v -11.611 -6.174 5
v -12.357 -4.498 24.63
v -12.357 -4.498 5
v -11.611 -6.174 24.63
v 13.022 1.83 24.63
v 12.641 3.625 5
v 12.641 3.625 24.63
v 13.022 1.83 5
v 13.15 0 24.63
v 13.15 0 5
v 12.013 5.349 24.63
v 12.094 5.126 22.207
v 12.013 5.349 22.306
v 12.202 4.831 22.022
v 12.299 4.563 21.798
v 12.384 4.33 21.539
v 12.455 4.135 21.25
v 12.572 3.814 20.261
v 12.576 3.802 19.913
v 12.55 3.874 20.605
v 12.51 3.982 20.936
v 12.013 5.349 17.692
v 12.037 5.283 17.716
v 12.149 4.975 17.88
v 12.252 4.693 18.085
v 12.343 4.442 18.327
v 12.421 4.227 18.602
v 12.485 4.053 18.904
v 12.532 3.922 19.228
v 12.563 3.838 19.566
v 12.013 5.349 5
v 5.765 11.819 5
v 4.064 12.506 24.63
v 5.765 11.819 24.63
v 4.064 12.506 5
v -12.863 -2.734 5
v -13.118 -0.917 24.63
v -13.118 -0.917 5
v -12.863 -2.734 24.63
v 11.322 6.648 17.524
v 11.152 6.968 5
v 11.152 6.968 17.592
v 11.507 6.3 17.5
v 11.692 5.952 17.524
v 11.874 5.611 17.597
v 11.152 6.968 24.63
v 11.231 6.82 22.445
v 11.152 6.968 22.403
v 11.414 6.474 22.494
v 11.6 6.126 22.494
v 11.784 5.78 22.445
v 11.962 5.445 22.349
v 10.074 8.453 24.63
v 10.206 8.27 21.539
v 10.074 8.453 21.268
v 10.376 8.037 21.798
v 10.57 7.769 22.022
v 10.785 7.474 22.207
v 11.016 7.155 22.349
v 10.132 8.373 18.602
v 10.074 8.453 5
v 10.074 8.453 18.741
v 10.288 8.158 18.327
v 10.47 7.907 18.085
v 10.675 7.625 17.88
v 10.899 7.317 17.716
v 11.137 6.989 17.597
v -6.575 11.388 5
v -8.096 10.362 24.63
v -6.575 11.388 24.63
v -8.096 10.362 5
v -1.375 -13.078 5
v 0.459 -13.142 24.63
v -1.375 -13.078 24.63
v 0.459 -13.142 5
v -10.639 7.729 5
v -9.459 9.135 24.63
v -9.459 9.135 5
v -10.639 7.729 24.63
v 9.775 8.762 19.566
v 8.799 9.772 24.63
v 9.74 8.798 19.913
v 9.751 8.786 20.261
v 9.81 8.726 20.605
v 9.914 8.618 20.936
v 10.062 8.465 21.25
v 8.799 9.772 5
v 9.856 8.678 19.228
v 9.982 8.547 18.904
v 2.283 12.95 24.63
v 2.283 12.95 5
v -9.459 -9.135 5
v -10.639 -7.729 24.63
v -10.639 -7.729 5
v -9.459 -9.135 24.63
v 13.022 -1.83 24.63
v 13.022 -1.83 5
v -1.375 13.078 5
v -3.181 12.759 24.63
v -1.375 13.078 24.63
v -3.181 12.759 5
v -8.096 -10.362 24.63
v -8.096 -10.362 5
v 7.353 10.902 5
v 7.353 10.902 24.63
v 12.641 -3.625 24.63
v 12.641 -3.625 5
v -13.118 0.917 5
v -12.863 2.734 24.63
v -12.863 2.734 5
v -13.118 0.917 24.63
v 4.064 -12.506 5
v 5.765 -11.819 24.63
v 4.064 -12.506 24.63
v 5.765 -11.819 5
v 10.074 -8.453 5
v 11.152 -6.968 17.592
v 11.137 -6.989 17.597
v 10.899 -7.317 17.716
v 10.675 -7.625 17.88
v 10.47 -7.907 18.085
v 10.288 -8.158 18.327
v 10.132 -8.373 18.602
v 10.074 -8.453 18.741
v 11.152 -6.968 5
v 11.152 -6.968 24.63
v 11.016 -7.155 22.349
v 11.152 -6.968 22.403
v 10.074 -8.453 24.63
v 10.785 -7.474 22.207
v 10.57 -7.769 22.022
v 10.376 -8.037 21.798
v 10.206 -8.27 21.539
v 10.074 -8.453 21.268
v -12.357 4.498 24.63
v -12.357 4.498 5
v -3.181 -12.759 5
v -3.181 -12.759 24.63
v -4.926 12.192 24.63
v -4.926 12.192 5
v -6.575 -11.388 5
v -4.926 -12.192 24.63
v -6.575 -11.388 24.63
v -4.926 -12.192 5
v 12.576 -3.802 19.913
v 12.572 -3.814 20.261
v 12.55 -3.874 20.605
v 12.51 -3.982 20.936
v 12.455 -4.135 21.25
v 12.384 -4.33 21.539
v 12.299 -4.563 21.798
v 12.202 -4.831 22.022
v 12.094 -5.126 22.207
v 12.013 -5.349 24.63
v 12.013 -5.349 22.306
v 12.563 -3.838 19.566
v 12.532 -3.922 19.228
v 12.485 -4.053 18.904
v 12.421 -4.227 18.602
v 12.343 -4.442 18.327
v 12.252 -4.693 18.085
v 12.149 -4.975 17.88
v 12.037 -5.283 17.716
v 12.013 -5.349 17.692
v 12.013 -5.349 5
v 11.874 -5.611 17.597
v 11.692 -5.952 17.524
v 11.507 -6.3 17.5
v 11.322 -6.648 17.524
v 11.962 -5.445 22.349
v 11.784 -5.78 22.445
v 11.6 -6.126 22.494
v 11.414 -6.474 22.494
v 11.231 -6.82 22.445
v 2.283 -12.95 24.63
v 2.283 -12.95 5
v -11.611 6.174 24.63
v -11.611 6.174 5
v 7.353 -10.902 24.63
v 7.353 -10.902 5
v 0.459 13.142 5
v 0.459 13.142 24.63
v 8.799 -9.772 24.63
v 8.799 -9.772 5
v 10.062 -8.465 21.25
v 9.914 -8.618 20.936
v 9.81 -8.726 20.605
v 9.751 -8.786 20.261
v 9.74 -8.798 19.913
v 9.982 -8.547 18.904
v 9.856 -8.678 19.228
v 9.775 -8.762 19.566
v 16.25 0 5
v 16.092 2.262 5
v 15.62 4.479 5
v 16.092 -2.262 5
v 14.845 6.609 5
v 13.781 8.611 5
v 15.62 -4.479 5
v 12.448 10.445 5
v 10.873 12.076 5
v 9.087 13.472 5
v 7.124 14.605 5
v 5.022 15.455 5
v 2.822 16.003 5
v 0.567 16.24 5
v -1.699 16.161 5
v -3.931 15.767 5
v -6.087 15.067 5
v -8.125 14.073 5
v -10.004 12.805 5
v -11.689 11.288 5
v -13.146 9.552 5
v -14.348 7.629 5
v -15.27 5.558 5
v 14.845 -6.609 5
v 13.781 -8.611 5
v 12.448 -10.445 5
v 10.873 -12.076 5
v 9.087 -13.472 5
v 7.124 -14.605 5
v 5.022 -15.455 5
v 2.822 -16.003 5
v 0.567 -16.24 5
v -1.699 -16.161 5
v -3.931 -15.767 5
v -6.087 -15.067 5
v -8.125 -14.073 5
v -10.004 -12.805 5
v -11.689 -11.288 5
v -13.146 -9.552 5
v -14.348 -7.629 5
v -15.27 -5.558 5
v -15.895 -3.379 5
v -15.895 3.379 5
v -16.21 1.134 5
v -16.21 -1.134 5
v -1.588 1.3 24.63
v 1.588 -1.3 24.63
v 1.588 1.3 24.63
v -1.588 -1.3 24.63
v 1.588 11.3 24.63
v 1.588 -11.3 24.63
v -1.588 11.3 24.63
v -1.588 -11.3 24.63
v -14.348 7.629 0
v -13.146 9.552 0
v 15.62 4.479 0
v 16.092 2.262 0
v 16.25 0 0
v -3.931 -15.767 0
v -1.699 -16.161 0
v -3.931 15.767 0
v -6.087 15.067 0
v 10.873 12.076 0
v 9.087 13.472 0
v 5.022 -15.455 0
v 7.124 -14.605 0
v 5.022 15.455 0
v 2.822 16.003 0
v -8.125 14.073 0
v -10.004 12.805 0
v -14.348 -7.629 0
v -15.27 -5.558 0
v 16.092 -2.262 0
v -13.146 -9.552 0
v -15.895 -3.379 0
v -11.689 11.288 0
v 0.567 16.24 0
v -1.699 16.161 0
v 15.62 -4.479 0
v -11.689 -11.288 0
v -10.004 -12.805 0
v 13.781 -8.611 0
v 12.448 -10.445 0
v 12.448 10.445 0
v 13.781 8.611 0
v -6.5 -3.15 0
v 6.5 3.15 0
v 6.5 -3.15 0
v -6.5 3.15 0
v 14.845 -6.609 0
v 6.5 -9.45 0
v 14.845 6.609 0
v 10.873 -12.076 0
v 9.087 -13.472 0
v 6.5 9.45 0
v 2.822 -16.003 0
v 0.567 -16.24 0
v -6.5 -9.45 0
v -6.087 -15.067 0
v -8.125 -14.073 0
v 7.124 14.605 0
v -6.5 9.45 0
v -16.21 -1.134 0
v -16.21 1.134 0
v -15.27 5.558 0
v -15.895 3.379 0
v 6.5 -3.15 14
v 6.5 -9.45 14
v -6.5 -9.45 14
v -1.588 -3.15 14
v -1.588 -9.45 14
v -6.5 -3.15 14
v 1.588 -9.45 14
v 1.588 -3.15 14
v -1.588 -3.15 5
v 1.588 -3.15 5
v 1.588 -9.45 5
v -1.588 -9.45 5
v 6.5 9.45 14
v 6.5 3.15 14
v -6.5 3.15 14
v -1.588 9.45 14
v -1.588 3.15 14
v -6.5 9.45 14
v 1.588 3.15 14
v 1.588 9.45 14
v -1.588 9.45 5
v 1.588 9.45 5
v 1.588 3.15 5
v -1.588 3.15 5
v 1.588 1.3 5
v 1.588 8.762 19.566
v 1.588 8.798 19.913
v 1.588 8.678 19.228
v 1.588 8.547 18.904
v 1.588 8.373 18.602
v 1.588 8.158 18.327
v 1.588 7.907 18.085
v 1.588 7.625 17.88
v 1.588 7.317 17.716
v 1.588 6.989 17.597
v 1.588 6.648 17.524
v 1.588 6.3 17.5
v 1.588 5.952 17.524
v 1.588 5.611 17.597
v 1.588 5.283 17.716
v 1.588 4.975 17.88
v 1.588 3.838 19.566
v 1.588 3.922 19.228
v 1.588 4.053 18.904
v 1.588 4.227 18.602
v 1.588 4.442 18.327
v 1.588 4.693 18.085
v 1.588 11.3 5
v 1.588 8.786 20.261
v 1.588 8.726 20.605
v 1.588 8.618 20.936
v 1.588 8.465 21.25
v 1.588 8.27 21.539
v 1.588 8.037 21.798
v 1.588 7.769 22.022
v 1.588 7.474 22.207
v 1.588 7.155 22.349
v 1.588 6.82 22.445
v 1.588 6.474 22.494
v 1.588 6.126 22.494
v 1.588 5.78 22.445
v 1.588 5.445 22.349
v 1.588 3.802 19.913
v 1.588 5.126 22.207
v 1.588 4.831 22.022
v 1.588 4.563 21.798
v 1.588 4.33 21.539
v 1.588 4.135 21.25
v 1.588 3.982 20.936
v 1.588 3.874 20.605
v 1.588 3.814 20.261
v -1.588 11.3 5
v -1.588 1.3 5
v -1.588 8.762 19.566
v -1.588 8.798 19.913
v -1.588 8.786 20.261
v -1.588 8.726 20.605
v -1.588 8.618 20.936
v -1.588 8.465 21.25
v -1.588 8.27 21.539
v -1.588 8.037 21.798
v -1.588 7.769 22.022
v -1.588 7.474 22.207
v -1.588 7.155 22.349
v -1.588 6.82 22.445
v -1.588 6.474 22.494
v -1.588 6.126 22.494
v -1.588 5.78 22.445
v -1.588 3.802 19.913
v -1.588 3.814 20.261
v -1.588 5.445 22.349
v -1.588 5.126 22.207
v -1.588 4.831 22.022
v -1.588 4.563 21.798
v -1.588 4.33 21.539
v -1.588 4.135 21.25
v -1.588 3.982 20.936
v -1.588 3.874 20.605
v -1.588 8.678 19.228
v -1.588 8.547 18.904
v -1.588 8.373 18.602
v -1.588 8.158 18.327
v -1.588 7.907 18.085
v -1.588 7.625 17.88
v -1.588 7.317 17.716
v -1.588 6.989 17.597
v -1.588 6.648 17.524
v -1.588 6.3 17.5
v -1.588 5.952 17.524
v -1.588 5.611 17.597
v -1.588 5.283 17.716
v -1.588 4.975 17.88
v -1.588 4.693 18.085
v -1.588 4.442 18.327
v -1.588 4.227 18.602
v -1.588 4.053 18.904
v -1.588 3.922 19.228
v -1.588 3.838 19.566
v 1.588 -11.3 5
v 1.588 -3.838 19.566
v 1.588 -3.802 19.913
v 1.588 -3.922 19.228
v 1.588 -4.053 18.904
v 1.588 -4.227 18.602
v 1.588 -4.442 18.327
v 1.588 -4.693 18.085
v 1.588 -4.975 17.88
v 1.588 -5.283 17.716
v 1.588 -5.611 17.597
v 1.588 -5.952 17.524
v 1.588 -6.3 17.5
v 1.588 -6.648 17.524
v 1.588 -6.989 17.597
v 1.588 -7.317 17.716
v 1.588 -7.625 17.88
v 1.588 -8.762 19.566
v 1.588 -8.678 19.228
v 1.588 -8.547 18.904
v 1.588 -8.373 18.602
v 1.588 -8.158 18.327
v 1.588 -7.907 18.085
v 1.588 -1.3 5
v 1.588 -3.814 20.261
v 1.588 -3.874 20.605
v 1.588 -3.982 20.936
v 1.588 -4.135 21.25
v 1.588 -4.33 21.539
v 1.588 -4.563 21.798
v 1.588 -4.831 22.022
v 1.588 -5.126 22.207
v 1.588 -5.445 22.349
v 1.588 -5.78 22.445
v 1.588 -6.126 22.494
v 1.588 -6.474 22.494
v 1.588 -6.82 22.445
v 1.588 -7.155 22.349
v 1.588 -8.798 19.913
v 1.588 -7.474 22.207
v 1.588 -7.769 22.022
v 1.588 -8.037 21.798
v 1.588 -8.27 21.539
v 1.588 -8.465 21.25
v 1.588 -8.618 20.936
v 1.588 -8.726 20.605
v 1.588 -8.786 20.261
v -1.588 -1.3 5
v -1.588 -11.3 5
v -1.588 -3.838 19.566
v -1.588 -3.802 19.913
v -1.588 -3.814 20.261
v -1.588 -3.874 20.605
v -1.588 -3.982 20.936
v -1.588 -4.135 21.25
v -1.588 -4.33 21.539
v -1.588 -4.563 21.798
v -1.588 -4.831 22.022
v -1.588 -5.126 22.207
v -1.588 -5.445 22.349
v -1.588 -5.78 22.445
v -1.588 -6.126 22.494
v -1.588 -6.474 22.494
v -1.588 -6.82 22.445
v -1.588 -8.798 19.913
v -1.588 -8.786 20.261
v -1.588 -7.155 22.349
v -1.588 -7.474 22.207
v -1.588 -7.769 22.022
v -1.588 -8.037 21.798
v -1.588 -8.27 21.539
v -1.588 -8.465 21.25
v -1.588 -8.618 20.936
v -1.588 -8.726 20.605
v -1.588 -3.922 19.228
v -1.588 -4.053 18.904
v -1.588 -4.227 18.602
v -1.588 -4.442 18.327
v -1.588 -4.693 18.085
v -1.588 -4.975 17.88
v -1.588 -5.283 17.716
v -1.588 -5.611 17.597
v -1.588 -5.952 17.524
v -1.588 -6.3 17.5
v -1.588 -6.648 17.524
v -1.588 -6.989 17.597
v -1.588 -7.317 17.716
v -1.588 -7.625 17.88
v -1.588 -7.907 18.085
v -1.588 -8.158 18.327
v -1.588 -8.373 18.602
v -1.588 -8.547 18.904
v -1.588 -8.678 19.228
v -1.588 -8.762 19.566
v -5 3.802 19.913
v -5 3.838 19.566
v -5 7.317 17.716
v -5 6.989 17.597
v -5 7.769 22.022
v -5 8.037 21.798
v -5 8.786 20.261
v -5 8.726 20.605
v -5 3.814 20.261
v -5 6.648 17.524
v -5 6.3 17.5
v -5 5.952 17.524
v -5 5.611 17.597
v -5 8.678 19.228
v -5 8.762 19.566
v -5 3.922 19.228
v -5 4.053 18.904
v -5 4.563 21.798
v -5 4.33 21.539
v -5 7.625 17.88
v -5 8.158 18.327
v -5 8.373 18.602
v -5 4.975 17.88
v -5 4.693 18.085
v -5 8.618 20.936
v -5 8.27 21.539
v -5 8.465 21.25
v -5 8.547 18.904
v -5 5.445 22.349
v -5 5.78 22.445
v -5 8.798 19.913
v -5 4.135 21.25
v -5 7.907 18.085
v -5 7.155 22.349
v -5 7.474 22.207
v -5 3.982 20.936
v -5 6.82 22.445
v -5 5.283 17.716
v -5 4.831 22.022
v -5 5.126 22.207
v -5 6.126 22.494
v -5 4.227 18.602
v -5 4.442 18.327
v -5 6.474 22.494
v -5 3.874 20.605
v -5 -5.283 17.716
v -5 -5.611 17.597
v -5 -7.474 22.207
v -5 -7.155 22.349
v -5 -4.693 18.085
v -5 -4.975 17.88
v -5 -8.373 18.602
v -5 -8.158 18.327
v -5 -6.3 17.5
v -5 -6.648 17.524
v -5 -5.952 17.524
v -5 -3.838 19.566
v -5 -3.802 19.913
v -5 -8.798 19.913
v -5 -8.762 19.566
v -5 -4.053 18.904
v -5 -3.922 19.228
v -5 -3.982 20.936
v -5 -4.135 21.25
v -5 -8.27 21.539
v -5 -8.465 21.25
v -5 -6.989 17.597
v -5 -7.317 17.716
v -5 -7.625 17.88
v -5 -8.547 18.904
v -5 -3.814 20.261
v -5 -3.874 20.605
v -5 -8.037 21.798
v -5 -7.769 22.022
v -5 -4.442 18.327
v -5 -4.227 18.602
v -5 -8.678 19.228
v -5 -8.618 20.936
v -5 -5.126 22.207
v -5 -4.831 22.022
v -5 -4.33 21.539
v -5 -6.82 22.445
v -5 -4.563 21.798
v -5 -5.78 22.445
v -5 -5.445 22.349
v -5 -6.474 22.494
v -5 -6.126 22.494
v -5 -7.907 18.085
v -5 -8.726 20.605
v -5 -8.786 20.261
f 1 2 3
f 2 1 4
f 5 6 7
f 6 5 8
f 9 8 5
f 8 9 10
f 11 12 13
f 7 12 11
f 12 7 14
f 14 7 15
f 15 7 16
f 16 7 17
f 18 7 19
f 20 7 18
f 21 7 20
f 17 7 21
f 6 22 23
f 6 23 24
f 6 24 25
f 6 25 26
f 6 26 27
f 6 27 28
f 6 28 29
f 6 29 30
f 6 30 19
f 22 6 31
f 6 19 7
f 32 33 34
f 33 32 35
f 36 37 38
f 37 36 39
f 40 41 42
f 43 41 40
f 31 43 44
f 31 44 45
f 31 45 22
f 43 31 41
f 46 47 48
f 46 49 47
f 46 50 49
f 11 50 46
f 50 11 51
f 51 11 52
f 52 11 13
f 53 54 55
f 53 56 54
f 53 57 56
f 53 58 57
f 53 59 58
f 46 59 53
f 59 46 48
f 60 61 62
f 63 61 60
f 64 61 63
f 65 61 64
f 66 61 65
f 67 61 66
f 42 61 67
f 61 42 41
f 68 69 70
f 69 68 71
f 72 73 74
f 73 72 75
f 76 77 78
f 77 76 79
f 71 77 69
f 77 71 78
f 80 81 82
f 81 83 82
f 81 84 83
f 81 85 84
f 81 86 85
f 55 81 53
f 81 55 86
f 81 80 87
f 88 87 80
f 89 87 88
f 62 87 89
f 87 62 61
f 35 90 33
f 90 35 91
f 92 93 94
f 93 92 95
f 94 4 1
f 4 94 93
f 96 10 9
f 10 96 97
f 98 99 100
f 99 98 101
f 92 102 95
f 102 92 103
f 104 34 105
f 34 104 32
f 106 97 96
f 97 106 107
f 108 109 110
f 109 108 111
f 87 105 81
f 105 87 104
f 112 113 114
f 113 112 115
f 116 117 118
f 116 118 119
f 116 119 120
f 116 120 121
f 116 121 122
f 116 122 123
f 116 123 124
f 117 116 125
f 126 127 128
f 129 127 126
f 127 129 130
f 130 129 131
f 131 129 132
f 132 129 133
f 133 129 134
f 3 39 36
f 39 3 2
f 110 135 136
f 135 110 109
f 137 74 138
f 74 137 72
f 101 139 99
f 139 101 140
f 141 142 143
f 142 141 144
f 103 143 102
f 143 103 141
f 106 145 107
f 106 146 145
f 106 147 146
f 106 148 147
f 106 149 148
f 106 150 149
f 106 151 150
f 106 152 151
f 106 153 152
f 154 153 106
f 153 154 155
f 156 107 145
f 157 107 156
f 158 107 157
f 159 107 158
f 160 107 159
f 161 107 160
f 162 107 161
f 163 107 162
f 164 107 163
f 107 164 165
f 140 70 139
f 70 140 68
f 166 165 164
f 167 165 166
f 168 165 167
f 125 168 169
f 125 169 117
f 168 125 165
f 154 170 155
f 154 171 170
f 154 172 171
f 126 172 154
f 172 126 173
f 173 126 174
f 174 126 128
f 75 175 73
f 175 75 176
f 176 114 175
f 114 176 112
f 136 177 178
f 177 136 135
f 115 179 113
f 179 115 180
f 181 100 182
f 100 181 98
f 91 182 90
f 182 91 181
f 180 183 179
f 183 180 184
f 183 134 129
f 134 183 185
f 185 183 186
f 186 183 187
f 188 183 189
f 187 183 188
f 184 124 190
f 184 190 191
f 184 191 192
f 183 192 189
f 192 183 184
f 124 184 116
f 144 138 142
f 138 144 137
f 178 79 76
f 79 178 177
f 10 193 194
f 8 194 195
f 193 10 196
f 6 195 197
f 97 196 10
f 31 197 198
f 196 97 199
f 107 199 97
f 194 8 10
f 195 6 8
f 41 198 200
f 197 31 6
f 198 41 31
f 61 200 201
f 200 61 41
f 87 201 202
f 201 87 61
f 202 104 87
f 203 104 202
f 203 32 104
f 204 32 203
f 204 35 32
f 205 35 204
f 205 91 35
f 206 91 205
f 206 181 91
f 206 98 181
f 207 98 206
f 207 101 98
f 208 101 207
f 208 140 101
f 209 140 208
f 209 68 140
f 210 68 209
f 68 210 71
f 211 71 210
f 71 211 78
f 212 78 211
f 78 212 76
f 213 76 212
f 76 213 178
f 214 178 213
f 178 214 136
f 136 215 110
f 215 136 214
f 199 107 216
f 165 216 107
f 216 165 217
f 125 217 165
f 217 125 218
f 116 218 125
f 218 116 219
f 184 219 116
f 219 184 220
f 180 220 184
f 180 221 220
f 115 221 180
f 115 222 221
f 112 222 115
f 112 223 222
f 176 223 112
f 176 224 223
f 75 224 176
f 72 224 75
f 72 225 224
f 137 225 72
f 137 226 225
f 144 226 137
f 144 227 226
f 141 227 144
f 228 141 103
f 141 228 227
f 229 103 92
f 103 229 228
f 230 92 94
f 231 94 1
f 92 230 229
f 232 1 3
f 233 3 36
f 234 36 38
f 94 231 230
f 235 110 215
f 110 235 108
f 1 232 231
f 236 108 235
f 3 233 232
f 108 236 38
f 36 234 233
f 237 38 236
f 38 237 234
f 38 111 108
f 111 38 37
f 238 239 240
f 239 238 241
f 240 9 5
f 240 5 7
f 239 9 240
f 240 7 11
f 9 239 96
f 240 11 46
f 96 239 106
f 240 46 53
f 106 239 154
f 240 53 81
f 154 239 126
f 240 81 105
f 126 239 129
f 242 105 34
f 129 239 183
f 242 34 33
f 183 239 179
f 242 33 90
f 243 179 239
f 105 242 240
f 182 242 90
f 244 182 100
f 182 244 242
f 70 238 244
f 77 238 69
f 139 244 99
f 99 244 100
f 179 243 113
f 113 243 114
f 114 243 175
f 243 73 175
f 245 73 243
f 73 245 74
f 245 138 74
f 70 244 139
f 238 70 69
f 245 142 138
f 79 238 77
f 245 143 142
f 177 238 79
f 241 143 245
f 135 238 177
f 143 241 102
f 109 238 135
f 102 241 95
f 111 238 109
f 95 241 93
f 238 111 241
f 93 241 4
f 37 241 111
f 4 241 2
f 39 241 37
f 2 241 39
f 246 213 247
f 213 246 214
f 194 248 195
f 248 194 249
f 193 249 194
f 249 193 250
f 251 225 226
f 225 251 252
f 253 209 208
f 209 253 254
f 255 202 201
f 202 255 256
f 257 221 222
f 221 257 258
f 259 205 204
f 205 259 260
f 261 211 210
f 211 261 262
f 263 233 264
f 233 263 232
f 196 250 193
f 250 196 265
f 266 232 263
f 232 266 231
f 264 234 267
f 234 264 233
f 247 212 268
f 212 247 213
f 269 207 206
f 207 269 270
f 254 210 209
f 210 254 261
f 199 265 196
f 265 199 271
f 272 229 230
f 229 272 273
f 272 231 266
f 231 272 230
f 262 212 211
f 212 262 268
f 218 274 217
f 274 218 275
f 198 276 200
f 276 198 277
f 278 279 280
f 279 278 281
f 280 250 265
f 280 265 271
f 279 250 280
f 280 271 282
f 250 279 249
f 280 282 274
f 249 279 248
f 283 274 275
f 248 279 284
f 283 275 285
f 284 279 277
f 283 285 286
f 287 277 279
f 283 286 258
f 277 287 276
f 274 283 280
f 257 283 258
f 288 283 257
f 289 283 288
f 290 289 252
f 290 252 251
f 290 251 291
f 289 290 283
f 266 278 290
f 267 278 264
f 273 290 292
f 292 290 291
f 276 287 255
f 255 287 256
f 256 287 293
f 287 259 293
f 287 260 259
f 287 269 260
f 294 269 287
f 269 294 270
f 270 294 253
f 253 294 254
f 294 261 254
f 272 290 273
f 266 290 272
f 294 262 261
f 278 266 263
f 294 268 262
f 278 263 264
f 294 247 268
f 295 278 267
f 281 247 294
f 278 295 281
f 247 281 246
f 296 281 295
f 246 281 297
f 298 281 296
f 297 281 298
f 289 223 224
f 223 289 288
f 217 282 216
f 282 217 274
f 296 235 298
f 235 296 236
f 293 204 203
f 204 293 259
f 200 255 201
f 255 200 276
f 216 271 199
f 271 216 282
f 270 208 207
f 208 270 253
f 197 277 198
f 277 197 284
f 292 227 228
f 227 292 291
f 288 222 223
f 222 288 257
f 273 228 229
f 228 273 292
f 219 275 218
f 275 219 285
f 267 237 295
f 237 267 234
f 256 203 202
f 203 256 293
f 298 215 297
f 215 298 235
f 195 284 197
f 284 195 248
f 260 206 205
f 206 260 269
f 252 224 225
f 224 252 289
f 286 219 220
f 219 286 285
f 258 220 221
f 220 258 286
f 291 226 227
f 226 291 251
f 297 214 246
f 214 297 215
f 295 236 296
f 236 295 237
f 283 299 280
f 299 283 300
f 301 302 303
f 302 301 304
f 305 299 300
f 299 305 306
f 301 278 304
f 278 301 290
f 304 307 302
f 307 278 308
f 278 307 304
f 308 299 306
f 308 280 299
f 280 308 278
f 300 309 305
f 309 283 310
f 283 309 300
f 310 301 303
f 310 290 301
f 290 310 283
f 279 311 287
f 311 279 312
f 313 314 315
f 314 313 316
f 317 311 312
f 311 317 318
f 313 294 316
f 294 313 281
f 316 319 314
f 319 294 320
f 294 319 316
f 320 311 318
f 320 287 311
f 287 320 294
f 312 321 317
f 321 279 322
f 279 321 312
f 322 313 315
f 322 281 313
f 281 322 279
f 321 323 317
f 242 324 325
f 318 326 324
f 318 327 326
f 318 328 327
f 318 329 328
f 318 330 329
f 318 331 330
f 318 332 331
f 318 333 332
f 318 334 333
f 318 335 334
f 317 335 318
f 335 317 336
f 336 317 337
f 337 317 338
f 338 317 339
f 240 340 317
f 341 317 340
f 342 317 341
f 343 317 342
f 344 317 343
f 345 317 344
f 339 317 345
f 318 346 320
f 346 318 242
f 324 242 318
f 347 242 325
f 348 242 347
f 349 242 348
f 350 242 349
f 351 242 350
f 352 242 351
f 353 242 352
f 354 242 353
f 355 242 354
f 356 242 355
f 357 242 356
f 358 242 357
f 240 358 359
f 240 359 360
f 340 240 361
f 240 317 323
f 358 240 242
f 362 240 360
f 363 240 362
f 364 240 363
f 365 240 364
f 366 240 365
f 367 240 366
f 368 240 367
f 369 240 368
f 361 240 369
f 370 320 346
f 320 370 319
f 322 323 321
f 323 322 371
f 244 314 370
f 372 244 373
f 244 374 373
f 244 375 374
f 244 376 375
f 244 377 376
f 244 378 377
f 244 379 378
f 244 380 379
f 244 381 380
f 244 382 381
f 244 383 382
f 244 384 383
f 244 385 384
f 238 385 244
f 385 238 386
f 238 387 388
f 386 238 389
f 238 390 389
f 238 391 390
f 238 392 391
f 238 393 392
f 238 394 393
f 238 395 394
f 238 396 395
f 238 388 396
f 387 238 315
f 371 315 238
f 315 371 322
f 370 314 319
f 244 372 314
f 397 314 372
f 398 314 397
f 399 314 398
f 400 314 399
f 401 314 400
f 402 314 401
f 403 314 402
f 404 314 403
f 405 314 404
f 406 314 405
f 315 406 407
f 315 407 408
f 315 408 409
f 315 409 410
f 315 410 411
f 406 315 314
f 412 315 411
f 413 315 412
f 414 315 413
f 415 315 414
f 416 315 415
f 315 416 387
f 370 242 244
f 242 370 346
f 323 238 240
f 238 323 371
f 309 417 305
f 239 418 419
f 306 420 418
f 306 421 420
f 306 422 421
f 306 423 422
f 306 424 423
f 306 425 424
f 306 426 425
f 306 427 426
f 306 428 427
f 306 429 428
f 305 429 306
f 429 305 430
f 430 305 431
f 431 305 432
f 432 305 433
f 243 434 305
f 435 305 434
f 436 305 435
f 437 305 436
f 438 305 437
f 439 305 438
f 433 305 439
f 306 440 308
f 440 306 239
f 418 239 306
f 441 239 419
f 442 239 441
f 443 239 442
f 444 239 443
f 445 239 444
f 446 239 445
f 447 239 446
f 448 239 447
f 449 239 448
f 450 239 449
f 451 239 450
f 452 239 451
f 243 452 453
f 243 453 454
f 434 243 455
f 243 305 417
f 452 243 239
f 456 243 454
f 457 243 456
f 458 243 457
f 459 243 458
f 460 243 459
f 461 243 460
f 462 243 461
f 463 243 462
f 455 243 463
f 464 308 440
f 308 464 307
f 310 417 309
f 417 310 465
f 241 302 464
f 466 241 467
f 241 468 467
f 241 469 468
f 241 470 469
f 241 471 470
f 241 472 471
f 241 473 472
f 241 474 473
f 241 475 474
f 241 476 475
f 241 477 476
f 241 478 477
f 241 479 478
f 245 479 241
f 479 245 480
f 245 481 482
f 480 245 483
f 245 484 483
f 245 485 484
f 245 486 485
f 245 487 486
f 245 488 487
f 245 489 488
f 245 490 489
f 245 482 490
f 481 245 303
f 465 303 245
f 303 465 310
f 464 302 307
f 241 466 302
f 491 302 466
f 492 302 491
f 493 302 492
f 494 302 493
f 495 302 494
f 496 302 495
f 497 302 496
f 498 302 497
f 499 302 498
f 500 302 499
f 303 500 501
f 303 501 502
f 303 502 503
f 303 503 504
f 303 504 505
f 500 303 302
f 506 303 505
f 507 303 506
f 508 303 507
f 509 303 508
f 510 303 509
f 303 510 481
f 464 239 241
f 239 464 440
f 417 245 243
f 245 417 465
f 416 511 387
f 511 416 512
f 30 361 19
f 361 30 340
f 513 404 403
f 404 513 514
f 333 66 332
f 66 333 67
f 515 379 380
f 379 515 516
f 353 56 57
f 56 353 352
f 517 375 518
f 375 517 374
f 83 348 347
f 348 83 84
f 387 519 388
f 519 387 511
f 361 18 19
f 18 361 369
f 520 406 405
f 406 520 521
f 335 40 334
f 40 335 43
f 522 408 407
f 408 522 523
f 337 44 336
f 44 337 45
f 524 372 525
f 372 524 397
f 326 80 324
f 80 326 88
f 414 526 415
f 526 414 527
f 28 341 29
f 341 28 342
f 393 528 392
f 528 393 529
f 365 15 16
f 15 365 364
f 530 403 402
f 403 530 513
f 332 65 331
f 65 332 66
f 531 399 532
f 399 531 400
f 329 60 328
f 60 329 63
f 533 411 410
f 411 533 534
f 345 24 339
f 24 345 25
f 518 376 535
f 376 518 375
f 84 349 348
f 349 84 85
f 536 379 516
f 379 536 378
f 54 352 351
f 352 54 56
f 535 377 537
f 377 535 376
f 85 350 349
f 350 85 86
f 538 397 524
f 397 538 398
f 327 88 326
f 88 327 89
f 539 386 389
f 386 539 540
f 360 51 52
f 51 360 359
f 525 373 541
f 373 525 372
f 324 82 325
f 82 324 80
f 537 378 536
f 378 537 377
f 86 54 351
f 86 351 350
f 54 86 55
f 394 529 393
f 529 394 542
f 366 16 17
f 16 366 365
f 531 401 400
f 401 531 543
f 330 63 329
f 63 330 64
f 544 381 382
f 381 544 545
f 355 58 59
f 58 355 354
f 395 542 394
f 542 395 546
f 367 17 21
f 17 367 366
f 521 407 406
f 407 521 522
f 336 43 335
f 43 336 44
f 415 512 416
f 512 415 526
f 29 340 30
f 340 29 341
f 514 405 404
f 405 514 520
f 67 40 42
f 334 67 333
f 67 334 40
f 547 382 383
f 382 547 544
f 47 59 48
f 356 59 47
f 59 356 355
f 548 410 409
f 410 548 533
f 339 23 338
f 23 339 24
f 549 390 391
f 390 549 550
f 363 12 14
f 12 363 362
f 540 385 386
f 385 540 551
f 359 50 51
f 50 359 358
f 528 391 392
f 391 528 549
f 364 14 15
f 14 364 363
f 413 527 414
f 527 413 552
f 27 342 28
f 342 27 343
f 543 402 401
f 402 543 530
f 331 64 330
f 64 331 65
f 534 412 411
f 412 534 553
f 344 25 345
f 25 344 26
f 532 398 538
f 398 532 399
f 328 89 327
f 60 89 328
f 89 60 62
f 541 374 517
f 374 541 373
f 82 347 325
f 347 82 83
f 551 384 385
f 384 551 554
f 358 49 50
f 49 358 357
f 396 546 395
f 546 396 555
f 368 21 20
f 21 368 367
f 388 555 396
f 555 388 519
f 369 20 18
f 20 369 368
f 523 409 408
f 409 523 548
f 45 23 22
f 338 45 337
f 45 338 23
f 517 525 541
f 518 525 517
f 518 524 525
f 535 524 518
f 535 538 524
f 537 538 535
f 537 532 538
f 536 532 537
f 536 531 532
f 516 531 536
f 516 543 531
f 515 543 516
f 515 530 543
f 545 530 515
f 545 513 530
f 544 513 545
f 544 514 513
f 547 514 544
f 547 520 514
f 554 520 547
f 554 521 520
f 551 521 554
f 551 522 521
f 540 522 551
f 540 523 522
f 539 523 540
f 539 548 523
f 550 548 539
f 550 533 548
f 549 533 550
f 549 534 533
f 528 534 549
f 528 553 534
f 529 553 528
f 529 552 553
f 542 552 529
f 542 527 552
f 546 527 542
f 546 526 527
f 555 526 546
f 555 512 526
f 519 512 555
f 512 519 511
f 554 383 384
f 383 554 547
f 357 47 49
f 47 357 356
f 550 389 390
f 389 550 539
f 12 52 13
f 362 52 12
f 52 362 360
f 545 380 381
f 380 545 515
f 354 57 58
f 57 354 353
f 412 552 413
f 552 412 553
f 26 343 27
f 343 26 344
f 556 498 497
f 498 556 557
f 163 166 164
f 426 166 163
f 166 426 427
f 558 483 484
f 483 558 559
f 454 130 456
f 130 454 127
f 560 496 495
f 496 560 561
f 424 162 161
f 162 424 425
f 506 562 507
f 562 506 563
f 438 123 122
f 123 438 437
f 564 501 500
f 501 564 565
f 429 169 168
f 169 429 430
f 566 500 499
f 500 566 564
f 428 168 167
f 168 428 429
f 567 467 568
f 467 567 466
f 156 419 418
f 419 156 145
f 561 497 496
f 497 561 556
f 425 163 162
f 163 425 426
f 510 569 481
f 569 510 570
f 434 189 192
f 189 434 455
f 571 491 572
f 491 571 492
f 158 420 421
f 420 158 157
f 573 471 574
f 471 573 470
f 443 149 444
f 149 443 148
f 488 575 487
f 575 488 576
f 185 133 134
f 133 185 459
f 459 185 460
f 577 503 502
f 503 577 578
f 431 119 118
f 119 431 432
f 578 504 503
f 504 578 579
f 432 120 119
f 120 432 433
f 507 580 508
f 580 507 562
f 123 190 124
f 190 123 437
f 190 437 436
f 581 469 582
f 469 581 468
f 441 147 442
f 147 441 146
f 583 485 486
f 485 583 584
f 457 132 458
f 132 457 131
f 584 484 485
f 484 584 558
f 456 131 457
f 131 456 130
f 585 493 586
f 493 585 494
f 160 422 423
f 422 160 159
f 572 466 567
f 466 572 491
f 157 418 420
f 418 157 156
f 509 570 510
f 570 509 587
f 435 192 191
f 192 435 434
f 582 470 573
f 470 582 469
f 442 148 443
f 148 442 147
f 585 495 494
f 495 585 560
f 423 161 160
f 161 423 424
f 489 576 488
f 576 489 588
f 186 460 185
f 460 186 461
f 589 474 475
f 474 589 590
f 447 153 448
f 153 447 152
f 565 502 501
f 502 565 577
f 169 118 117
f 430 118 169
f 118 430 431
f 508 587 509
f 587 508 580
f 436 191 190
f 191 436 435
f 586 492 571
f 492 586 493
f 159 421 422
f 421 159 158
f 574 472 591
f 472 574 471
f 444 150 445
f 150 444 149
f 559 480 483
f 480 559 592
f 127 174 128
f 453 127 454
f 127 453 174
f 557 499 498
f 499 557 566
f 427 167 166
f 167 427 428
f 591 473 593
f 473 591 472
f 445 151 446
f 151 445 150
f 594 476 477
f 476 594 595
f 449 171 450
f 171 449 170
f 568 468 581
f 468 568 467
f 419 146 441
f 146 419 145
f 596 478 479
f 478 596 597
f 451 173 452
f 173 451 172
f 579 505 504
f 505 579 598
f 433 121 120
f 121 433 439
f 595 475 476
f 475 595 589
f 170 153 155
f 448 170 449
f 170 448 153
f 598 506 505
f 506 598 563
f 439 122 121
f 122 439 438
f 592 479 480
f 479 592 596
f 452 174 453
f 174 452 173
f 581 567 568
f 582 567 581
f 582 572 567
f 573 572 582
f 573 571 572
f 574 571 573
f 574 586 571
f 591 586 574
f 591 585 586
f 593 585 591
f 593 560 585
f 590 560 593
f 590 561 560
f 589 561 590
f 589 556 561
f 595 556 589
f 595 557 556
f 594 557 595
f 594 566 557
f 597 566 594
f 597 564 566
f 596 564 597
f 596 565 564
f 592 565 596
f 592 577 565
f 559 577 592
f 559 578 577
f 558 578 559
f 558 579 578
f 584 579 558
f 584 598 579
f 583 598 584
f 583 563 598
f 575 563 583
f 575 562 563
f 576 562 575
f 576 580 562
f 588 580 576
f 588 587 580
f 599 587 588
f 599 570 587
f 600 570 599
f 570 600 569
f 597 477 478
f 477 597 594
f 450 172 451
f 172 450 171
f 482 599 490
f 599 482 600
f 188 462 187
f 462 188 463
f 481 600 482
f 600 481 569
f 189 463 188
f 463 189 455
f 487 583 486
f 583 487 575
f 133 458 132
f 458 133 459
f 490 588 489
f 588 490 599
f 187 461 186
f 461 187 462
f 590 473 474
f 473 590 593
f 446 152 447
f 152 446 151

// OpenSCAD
$fn = 45;
lip=5;
difference(){
	union(){
		translate([0,0,lip]){
			cylinder(r=26.3/2, h=19.63);
		}
		cylinder(r=32.5/2, h=lip);
	}
	translate([0,-6.3,7]){
		cube([13,6.3,14], center = true);
	}
	translate([0,6.3,7]){
		cube([13,6.3,14], center = true);
	}
	translate([0,6.3,24.63/2+lip]){
		cube([3.175,10,19.63+lip], center = true);
	}
	translate([0,-6.3,24.63/2+lip]){
		cube([3.175,10,19.63+lip], center=true);
	}
	rotate([0,90,0]){
		translate([-20,6.3,-5]){
			cylinder(r=5/2, h=100);
		}
	}
	rotate([0,90,0]){
		translate([-20,-6.3,-5]){
			cylinder(r=5/2, h=100);
		}
	}
}
